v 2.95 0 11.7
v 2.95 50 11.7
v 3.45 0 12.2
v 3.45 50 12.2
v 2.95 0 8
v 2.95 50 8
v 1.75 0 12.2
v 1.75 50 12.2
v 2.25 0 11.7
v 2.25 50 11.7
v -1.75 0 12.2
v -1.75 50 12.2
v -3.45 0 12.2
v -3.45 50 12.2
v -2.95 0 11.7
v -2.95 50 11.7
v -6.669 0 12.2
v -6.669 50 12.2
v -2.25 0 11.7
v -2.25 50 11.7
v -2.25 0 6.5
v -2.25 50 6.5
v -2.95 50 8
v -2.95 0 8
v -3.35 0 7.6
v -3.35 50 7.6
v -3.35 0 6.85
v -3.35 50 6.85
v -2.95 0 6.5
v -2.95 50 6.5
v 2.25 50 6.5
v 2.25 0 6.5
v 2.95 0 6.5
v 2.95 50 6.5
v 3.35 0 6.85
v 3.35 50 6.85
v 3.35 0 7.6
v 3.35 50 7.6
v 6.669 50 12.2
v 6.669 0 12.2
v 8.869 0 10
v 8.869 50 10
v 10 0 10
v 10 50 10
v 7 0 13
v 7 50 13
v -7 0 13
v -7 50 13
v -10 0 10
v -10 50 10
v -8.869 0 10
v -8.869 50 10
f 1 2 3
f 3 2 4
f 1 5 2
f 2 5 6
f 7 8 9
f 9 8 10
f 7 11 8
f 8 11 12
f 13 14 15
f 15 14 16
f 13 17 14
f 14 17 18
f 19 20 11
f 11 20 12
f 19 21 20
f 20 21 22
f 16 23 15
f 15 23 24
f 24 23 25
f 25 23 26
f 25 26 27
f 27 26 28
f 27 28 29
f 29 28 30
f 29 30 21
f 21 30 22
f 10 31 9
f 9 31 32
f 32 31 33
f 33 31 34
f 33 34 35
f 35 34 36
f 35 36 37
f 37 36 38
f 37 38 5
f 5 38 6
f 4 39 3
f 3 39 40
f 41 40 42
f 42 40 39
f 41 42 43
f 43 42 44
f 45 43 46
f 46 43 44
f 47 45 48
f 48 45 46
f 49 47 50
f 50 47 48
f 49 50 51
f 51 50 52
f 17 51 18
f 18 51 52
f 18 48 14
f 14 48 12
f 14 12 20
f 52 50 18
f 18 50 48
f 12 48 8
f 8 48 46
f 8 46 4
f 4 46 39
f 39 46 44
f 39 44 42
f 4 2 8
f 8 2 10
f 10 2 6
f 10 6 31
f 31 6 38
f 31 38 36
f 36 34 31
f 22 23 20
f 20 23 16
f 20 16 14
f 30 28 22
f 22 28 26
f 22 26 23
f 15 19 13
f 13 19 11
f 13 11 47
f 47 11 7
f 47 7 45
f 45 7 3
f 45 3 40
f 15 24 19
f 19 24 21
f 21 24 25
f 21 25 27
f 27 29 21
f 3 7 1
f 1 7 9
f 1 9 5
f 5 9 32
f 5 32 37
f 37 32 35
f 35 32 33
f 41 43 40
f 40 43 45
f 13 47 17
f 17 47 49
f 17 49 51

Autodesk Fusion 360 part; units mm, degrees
sketch "Sketch1" plane through (0, 0, 0) normal (0, 1, 0) x (1, 0, 0)
  line L0 (10, -10) -> (-10, -10)
  line L1 (-10, -10) -> (-10, 10)
  line L2 (-10, 10) -> (10, 10)
  line L3 (10, 10) -> (10, -10)
  line L4 (10, -10) -> (-10, 10) construction
  line L5 (-10, -10) -> (10, 10) construction
  line L6 (-10, -10) -> (10, -10)
  line L7 (10, -10) -> (10, -13)
  line L8 (10, -13) -> (-10, -13)
  line L9 (-10, -13) -> (-10, -10)
  line L10 (-3.75, -13) -> (-3.75, 10)
  line L11 (3.75, -13) -> (3.75, 10)
  line L12 (-2.95, -13) -> (-2.95, 10)
  line L13 (2.95, -13) -> (2.95, 10)
  line L14 (6, -13) -> (6, 10)
  line L15 (-6, 10) -> (-6, -13)
  line L16 (-10, -8) -> (10, -8)
  line L17 (-2.25, -13) -> (-2.25, 10)
  line L18 (2.25, -13) -> (2.25, 10)
  line L19 (10, -6.5) -> (-10, -6.5)
  line L20 (10, -12.2) -> (-10, -12.2)
  line L21 (6, -12.2) -> (9.182, -12.2) construction
  line L22 (6.3314, -13) -> (10.913, -13) construction
  line L23 (-6, -12.2) -> (-9.182, -12.2) construction
  line L24 (-6.3314, -13) -> (-10.9441, -13) construction
  line L25 (2.95, -8) -> (3.75, -7.2)
  line L26 (2.95, -8) -> (4.0607, -8) construction
  line L27 (2.95, -6.5) -> (3.75, -7.2)
  line L28 (-2.95, -8) -> (-3.75, -7.2)
  line L29 (-2.95, -8) -> (-4.0607, -8) construction
  line L30 (-2.95, -6.5) -> (-3.75, -7.2)
  line L31 (-10, -10) -> (-7, -13)
  line L32 (-10, -10) -> (-5.7574, -10) construction
  line L33 (-8.8686, -10) -> (-6.6686, -12.2)
  line L34 (10, -10) -> (7, -13)
  line L35 (10, -10) -> (5.7574, -10) construction
  line L36 (8.8686, -10) -> (6.6686, -12.2)
  line L37 (3.35, -8) -> (3.35, -6.5)
  line L38 (-3.35, -8) -> (-3.35, -6.5)
  dimension "d1" = 20
  dimension "d2" = 20
  dimension "d3" = 20
  dimension "d4" = 3
  dimension "d5" = 7.5
  dimension "d6" = 3.75
  dimension "d7" = 5.9
  dimension "d8" = 2.95
  dimension "d9" = 12
  dimension "d10" = 6
  dimension "d11" = 2
  dimension "d12" = 4.5
  dimension "d13" = 2.25
  dimension "d14" = 1.5
  dimension "d15" = 0.8
  dimension "d29" = 45
  dimension "d30" = 45
  dimension "d31" = 45
  dimension "d32" = 45
  dimension "d33" = 0.8
  dimension "d34" = 0.8
  dimension "d35" = 0.4
  dimension "d36" = 0.4
extrude "Extrude1" add sketch "Sketch1" along normal blind 50 contours L0 L6 L20 L34 L36 | L8 L14 L20 L34 | L8 L11 L14 L20 | L0 L6 L13 L18 L20 | L0 L6 L13 L16 L18 | L8 L11 L13 L20 | L8 L13 L18 L20 | L13 L16 L18 L19 | L13 L25 L27 L37 | L0 L6 L12 L17 L20 | L0 L6 L12 L16 L17 | L8 L17 L18 L20 | L8 L12 L17 L20 | L12 L16 L17 L19 | L8 L10 L12 L20 | L12 L28 L30 L38 | L8 L10 L15 L20 | L0 L6 L20 L31 L33 | L8 L15 L20 L31
chamfer "Chamfer5" distance 0.5 angle 45 4 edges at (-2.25, 25, 12.2) (-2.95, 25, 12.2) (2.25, 25, 12.2) (2.95, 25, 12.2)
